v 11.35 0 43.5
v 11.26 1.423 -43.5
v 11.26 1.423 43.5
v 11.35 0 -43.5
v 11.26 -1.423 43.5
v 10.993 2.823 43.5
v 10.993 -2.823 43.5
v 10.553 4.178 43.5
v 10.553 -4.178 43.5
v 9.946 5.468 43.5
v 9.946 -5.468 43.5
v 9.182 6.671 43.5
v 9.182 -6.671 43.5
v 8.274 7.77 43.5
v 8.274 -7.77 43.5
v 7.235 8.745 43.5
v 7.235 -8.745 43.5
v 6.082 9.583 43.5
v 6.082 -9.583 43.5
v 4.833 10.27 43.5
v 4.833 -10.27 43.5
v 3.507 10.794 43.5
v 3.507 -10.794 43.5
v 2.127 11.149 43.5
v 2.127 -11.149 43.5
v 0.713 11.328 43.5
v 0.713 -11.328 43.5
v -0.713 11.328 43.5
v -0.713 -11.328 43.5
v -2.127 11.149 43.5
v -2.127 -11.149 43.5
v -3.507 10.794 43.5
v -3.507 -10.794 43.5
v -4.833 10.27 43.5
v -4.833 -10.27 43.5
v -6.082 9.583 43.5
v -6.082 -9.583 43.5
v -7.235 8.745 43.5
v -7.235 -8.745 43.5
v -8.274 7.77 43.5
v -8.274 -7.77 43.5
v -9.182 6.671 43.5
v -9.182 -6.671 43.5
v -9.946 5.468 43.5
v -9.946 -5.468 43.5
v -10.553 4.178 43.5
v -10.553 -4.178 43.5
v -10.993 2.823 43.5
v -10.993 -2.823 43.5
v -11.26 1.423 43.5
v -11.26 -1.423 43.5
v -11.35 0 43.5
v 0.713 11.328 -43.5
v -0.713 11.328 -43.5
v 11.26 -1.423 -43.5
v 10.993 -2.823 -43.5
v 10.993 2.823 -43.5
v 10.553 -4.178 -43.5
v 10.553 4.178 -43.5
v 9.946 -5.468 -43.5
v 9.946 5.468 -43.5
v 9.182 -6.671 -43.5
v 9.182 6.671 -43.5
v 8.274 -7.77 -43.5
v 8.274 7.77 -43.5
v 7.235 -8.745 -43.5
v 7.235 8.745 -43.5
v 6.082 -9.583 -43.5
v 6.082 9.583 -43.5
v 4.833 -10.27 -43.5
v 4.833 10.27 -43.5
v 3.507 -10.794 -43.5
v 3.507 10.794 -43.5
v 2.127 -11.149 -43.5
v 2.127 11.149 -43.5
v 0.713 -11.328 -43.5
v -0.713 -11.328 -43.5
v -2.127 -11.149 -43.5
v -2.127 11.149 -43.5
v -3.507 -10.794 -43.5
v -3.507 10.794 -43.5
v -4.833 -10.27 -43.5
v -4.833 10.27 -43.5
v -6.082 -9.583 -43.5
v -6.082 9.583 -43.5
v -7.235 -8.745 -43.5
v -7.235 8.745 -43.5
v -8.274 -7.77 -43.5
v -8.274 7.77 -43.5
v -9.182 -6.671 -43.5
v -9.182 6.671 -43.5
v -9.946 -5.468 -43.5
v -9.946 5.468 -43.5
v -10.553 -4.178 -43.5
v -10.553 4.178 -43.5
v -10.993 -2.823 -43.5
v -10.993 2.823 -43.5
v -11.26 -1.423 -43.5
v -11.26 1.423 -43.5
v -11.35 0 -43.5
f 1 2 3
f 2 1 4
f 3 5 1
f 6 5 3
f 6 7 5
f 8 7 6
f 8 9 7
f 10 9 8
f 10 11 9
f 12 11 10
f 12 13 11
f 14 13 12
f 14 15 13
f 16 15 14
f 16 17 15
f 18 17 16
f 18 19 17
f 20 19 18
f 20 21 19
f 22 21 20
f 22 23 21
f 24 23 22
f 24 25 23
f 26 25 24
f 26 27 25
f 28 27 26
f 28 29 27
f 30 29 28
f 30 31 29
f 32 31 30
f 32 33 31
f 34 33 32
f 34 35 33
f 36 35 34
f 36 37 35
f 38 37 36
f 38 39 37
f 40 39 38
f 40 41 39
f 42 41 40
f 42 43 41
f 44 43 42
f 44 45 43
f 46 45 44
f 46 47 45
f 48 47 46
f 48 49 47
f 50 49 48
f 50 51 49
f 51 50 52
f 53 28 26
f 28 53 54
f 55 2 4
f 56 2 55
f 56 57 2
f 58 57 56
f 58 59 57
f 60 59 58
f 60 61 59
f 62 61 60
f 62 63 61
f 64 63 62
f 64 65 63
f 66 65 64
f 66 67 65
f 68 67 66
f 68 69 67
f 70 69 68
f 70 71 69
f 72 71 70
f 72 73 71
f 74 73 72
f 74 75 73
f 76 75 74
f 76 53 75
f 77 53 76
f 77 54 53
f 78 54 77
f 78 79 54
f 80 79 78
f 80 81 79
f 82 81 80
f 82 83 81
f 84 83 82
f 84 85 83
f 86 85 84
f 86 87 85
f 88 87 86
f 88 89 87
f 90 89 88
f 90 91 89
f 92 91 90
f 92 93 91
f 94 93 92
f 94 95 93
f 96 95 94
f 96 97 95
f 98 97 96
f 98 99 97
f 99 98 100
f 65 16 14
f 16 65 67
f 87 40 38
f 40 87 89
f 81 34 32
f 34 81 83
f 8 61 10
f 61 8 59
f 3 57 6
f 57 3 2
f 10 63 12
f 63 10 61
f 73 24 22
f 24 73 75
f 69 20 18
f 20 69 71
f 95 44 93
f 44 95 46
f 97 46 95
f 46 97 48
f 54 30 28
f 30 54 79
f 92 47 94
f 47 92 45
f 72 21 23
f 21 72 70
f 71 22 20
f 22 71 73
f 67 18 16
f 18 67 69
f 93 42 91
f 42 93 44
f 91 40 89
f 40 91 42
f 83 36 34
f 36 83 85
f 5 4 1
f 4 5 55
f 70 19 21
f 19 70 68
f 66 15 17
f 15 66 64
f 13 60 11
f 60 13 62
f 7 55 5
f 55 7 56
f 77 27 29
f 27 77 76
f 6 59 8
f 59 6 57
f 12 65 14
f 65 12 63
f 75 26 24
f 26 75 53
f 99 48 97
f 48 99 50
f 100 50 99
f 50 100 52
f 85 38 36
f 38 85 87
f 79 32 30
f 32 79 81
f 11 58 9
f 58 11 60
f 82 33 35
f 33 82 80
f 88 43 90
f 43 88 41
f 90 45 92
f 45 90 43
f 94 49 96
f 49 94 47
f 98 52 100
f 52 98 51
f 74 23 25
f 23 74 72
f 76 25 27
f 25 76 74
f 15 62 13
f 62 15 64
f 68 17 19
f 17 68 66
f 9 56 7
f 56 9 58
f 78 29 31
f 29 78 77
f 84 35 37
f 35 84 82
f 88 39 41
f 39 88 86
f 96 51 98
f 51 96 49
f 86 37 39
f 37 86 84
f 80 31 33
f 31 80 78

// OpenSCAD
$fn = 50;


difference() {
	union() {
		translate(v = [0, 0, -43.5000000000]) {
			cylinder(h = 87, r = 11.3500000000);
		}
	}
	union() {
		translate(v = [0, 0, -100.0000000000]) {
			cylinder(h = 200, r = 0);
		}
	}
}
